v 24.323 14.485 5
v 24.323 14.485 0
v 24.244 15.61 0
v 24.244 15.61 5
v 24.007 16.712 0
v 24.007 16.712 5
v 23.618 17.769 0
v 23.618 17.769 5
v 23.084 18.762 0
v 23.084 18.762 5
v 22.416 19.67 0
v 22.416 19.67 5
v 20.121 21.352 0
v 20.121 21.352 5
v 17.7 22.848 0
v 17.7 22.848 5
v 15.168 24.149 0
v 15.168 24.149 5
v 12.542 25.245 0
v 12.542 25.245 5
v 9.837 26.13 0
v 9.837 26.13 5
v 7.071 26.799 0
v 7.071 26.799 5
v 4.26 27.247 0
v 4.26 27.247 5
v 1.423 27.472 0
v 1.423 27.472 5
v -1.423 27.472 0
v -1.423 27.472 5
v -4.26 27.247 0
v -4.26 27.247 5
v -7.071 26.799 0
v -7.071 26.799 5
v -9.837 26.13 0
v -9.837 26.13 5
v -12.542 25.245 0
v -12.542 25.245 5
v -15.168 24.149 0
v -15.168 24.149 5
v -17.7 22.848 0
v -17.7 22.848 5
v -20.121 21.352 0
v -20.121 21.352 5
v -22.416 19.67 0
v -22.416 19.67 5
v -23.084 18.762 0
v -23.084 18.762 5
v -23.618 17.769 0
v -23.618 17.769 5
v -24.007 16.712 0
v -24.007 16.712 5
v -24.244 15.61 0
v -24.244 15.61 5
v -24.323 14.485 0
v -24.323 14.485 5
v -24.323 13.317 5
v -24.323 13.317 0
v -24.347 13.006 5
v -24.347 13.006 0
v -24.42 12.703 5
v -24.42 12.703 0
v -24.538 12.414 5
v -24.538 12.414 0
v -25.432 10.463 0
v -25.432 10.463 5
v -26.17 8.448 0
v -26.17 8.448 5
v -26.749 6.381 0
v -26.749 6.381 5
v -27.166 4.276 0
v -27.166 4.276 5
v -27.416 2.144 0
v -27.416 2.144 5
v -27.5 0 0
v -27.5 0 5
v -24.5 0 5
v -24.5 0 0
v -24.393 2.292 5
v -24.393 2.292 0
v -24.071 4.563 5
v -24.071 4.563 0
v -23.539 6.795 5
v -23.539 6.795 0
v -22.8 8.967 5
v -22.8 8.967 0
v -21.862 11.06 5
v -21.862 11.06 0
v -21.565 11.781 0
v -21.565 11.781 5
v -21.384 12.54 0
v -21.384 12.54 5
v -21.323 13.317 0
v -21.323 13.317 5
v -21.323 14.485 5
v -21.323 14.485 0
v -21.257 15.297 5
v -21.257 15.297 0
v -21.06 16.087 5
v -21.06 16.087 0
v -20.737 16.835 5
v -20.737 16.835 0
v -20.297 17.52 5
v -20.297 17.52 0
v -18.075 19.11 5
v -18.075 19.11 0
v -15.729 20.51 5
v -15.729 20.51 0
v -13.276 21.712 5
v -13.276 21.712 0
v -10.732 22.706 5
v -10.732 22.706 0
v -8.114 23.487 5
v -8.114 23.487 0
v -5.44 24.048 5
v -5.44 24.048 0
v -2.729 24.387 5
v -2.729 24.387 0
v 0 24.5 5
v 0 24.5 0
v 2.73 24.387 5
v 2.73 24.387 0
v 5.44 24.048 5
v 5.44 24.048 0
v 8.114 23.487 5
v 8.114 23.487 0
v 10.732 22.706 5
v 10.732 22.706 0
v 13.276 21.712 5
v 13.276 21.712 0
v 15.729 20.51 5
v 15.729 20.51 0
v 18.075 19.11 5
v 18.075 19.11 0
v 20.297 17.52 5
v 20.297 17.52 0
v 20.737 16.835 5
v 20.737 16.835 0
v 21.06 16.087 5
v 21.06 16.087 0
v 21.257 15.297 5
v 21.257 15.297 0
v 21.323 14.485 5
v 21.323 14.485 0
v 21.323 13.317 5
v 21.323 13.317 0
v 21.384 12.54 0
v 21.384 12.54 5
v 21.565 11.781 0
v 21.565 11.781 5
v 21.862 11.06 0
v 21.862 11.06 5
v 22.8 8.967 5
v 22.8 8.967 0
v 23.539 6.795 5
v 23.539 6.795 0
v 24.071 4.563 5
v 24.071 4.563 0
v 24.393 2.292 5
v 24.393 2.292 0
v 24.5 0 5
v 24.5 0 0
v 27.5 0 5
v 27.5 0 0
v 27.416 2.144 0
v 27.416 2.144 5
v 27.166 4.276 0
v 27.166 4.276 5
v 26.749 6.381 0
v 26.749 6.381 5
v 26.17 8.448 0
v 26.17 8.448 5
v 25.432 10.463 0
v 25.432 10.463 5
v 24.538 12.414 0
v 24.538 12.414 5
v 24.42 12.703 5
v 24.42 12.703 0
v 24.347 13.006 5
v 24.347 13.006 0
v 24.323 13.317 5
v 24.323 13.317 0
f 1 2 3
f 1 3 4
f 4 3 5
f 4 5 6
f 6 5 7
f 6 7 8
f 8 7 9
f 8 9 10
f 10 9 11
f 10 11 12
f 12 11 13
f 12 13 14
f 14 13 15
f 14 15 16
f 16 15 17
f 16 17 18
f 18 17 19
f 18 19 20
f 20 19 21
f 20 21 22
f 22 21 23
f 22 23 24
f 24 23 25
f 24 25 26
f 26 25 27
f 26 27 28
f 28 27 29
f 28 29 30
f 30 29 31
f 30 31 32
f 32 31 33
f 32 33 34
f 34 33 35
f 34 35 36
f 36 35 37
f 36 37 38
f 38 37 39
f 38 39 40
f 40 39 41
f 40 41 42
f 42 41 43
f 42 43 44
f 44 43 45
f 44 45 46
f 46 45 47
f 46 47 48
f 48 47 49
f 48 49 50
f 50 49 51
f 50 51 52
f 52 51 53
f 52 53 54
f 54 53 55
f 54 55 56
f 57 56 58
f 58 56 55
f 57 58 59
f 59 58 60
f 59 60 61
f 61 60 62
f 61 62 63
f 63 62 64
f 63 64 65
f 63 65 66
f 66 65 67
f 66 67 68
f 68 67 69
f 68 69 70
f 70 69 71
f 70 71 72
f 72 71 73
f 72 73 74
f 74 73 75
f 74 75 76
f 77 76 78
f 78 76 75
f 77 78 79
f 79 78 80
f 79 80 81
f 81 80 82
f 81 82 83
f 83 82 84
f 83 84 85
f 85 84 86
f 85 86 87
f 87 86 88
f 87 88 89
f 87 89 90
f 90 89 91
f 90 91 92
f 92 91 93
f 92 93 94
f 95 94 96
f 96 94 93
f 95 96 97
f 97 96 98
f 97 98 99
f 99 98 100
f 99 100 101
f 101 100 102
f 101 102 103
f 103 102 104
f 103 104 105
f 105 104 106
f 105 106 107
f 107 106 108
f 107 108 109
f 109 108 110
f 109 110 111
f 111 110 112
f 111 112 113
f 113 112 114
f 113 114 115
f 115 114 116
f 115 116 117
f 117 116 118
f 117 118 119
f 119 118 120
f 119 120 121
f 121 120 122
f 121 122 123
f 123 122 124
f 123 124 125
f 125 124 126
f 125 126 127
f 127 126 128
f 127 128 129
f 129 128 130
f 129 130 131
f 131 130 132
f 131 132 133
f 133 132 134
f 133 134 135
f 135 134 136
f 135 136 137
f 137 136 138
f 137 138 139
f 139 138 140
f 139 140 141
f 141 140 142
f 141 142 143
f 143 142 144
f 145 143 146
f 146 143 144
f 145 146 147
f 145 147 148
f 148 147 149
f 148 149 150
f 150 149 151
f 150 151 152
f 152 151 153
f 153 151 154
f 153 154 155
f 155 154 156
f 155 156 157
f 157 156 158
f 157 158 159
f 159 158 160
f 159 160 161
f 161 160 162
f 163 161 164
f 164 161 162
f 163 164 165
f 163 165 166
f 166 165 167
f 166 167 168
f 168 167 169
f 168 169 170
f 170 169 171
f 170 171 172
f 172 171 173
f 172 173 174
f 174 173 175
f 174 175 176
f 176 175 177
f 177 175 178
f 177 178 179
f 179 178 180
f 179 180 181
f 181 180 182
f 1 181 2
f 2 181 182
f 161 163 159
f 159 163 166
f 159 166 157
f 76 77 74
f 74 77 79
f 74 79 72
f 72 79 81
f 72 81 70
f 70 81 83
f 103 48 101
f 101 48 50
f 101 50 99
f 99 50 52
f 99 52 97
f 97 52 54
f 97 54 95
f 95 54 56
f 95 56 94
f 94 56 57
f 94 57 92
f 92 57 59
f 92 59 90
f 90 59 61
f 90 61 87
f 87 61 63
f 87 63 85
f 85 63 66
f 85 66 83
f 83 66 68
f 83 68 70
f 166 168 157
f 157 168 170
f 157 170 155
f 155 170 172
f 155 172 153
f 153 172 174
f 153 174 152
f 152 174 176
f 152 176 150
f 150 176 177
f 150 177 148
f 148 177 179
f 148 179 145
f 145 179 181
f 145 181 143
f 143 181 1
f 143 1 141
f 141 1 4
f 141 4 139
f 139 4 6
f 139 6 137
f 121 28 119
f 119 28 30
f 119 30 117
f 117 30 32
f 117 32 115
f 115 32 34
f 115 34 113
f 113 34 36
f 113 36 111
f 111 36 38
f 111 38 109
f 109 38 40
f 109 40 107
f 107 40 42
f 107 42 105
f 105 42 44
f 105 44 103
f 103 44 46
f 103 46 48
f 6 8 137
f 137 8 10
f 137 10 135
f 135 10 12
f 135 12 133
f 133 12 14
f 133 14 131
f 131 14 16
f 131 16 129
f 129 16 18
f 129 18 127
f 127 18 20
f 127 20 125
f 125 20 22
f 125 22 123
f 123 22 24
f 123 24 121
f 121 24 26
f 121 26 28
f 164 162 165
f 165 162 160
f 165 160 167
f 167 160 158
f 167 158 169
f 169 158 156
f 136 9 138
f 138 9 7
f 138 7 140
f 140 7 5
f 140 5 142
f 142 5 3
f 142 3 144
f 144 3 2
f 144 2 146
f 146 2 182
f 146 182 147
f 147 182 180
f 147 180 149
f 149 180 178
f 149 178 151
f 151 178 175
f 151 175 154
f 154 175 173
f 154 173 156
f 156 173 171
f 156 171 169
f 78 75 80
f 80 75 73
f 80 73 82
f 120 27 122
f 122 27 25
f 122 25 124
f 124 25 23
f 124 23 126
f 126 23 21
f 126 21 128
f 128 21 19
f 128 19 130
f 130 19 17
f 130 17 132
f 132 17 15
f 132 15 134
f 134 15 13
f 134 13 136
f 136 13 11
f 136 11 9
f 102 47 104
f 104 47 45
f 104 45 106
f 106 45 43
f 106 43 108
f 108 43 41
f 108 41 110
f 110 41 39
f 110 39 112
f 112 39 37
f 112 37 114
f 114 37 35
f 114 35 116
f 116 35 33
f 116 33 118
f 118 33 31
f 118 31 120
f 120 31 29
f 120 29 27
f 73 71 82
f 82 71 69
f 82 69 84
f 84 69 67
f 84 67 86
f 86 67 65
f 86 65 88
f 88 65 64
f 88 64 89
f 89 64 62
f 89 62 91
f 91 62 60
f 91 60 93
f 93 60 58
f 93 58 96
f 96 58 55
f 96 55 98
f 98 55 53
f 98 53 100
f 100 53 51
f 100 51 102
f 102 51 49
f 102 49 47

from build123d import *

# Parameters (mm, degrees)
BOSS_EXTRUDE1_DEPTH = 5


with BuildPart() as part:
    # Sketch1 → Boss-Extrude1 (new body)
    with BuildSketch(Plane.XY):
        with BuildLine():
            Line((-24.323076923, 14.485250559), (-24.323076923, 13.317117605))
            ThreePointArc((-24.323076923, 13.317117605), (-24.377668127, 12.853022124), (-24.538461538, 12.414262174))
            ThreePointArc((-24.538461538, 12.414262174), (-26.749370949, 6.381312862), (-27.5, 0))
            Line((-27.5, 0), (-24.5, 0))
            ThreePointArc((-24.5, 0), (-23.831257754, 5.685169641), (-21.861538462, 11.059979028))
            ThreePointArc((-21.861538462, 11.059979028), (-21.459554932, 12.156878903), (-21.323076923, 13.317117605))
            Line((-21.323076923, 13.317117605), (-21.323076923, 14.485250559))
            ThreePointArc((-21.323076923, 14.485250559), (-21.059553746, 16.08705807), (-20.296762002, 17.52002022))
            ThreePointArc((-20.296762002, 17.52002022), (-10.731713115, 22.70625472), (0, 24.5))
            ThreePointArc((0, 24.5), (10.731713115, 22.70625472), (20.296762002, 17.52002022))
            ThreePointArc((20.296762002, 17.52002022), (21.059553746, 16.08705807), (21.323076923, 14.485250559))
            Line((21.323076923, 14.485250559), (21.323076923, 13.317117605))
            ThreePointArc((21.323076923, 13.317117605), (21.459554932, 12.156878903), (21.861538462, 11.059979028))
            ThreePointArc((21.861538462, 11.059979028), (23.831257754, 5.685169641), (24.5, 0))
            Line((24.5, 0), (27.5, 0))
            ThreePointArc((27.5, 0), (26.749370949, 6.381312862), (24.538461538, 12.414262174))
            ThreePointArc((24.538461538, 12.414262174), (24.377668127, 12.853022124), (24.323076923, 13.317117605))
            Line((24.323076923, 13.317117605), (24.323076923, 14.485250559))
            ThreePointArc((24.323076923, 14.485250559), (23.831147361, 17.247292972), (22.41585735, 19.669652807))
            ThreePointArc((22.41585735, 19.669652807), (11.872078566, 25.486081718), (0, 27.5))
            ThreePointArc((0, 27.5), (-11.872078566, 25.486081718), (-22.41585735, 19.669652807))
            ThreePointArc((-22.41585735, 19.669652807), (-23.831147361, 17.247292972), (-24.323076923, 14.485250559))
        make_face()
    extrude(amount=BOSS_EXTRUDE1_DEPTH)


solid = part.part
